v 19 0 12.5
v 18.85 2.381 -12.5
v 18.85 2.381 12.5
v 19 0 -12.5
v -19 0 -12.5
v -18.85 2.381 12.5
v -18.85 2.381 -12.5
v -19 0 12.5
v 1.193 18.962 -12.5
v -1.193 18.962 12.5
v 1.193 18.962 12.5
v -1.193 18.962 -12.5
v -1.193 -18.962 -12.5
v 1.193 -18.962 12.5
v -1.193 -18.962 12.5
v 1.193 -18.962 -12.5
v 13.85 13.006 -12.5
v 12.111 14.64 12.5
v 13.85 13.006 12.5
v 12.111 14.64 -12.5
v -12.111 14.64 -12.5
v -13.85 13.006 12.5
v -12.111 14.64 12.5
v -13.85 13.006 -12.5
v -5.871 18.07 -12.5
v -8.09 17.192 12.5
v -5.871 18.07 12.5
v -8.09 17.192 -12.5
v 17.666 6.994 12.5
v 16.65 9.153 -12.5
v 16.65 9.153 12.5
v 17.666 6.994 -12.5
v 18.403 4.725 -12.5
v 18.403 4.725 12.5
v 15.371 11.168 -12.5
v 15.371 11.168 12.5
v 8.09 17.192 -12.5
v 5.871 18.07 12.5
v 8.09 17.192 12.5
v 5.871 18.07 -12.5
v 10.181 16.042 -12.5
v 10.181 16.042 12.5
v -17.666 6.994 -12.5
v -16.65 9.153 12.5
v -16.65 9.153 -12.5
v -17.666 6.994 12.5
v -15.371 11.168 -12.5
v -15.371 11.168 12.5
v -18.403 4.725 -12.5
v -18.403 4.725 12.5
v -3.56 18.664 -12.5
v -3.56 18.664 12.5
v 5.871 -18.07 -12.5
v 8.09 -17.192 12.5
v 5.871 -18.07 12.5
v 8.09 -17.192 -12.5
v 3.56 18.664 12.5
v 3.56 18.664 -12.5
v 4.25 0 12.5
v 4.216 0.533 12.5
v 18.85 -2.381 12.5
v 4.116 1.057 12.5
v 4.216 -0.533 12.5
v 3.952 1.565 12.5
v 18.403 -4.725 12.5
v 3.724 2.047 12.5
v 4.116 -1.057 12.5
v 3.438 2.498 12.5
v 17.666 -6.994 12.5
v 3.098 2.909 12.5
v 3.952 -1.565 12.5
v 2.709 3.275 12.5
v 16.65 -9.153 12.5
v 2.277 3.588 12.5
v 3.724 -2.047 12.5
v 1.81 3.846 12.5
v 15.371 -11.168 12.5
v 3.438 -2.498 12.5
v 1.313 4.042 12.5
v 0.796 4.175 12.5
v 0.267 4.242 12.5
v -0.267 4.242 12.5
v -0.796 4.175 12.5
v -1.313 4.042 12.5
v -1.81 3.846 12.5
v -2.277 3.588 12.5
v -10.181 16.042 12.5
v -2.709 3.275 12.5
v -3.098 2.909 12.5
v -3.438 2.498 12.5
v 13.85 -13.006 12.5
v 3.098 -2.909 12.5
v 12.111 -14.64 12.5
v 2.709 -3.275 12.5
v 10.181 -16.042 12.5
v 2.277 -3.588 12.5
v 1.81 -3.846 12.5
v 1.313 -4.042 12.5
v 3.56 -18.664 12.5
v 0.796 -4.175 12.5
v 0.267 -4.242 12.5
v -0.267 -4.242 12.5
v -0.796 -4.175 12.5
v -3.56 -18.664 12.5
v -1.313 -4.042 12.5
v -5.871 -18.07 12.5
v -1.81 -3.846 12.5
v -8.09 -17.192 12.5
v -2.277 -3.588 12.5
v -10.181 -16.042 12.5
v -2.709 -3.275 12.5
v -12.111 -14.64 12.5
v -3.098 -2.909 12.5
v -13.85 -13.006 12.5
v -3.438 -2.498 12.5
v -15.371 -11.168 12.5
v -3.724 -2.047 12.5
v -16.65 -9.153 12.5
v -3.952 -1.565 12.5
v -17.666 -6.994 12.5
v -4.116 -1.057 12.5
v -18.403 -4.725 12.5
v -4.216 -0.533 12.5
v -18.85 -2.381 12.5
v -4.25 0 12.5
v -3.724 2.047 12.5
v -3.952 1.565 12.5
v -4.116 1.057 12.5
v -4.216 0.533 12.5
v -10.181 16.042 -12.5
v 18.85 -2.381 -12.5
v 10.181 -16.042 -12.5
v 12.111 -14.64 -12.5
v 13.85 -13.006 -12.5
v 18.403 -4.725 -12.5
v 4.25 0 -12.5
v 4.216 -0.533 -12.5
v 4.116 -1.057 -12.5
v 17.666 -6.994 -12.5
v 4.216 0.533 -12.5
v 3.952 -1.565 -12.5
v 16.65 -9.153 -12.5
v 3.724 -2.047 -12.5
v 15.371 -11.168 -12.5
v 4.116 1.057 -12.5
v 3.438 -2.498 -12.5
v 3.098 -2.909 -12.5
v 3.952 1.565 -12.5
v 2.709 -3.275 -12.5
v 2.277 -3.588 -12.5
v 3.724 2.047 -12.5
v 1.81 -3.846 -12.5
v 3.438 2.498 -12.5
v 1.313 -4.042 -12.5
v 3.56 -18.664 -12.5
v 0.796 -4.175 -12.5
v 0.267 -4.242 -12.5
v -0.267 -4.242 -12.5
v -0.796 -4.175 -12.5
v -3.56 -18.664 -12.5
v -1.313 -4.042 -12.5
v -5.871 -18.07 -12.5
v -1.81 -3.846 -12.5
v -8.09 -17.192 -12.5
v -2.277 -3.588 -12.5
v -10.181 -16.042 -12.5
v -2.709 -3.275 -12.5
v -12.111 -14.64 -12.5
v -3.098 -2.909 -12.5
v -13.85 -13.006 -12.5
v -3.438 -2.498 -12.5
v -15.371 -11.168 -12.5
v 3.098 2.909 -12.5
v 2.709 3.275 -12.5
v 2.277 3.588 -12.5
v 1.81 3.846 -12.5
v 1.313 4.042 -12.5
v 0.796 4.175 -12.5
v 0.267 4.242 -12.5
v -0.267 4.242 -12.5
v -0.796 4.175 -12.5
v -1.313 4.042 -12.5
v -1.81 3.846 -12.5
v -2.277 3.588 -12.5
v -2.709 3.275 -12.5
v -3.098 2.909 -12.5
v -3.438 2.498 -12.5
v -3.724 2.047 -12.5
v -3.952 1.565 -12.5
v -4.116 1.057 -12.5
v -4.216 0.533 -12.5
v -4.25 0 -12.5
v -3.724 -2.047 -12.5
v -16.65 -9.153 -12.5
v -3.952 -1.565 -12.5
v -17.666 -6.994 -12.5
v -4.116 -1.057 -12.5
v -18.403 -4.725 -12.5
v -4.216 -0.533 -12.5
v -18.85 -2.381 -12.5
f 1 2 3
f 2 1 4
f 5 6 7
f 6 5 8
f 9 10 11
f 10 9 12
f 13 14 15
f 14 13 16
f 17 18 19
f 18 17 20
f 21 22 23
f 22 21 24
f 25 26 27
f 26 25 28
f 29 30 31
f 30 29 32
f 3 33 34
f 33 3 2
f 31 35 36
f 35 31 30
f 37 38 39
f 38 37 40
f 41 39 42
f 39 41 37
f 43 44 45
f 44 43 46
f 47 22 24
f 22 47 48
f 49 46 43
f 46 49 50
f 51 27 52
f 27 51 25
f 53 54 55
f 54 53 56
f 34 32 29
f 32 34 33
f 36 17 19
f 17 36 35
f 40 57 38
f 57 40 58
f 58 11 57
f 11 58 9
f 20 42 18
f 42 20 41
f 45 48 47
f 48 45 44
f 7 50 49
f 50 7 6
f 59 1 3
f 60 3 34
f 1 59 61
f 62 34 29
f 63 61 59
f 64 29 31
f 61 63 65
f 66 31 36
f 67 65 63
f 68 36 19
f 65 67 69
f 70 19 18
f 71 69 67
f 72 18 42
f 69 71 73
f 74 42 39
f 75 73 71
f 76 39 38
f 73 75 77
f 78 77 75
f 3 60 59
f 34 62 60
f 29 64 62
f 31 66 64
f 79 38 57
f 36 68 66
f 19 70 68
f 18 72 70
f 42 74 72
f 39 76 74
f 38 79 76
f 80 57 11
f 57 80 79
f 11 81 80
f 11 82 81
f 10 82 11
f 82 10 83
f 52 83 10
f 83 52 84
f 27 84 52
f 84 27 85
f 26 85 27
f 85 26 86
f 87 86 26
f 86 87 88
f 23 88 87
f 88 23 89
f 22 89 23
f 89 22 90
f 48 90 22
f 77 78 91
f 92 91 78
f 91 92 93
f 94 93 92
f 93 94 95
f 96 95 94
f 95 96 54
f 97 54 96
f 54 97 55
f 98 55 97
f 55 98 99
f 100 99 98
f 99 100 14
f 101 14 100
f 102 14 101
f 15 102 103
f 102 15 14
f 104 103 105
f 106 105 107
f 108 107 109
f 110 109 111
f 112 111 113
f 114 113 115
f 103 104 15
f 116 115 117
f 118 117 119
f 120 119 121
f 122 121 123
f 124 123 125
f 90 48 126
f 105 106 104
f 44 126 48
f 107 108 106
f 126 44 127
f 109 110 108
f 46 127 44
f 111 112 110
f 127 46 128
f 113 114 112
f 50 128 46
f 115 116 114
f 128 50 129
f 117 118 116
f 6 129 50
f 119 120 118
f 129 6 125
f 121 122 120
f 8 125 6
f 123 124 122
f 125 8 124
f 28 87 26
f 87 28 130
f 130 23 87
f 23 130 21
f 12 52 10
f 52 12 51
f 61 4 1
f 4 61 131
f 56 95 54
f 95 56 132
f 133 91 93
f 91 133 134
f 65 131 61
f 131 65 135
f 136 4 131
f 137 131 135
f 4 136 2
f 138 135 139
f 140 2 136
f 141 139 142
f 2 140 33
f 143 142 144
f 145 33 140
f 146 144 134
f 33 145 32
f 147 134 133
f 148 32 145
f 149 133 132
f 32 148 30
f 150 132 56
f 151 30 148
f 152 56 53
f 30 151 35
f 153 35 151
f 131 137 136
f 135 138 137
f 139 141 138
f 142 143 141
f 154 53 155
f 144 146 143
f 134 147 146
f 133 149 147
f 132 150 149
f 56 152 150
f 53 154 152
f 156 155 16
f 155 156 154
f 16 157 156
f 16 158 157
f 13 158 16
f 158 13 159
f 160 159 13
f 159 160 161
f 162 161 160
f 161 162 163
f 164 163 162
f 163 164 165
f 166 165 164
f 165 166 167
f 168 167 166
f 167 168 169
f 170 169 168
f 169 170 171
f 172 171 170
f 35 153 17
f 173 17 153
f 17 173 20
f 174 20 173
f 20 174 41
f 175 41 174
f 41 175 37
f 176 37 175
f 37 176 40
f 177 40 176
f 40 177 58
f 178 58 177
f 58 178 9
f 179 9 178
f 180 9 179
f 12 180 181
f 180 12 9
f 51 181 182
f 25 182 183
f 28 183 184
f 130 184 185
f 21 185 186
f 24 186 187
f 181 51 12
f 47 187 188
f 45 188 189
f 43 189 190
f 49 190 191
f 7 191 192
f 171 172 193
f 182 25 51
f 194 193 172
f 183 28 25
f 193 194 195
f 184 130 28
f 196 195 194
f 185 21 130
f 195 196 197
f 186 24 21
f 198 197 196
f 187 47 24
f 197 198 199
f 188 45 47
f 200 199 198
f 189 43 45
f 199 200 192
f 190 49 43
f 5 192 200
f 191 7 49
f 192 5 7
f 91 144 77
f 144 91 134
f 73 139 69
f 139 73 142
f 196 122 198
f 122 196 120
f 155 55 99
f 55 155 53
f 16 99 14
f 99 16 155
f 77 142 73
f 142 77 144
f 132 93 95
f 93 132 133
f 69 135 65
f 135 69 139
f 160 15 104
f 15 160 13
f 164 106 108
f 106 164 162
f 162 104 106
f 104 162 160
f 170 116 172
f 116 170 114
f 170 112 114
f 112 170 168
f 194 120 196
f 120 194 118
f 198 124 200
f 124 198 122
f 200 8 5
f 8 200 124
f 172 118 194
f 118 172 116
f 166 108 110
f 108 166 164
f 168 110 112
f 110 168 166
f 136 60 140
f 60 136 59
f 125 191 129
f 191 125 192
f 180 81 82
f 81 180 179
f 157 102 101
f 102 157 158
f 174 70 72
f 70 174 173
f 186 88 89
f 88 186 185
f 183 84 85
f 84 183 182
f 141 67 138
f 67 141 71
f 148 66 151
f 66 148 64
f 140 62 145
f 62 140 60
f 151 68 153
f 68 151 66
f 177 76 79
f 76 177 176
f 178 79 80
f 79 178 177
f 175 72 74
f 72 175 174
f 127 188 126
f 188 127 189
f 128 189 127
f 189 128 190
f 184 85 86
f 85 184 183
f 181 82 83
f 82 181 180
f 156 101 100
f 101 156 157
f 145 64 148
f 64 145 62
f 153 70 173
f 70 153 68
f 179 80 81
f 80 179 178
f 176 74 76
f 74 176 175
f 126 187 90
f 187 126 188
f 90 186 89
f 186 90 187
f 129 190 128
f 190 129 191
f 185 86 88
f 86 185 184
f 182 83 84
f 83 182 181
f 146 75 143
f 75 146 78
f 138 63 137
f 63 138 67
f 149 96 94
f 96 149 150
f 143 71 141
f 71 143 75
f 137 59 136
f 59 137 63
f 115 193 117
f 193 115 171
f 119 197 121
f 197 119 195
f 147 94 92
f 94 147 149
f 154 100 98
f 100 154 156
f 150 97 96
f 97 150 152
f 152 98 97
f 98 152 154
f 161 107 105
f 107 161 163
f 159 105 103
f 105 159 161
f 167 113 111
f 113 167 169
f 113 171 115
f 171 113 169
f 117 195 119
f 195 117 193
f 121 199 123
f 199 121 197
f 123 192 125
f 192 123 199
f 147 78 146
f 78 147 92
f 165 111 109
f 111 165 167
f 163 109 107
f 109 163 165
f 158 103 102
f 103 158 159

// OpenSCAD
$fn = 50;


difference() {
	union() {
		translate(v = [0, 0, -12.5000000000]) {
			cylinder(h = 25, r = 19.0000000000);
		}
	}
	union() {
		translate(v = [0, 0, -100.0000000000]) {
			cylinder(h = 200, r = 4.2500000000);
		}
	}
}
